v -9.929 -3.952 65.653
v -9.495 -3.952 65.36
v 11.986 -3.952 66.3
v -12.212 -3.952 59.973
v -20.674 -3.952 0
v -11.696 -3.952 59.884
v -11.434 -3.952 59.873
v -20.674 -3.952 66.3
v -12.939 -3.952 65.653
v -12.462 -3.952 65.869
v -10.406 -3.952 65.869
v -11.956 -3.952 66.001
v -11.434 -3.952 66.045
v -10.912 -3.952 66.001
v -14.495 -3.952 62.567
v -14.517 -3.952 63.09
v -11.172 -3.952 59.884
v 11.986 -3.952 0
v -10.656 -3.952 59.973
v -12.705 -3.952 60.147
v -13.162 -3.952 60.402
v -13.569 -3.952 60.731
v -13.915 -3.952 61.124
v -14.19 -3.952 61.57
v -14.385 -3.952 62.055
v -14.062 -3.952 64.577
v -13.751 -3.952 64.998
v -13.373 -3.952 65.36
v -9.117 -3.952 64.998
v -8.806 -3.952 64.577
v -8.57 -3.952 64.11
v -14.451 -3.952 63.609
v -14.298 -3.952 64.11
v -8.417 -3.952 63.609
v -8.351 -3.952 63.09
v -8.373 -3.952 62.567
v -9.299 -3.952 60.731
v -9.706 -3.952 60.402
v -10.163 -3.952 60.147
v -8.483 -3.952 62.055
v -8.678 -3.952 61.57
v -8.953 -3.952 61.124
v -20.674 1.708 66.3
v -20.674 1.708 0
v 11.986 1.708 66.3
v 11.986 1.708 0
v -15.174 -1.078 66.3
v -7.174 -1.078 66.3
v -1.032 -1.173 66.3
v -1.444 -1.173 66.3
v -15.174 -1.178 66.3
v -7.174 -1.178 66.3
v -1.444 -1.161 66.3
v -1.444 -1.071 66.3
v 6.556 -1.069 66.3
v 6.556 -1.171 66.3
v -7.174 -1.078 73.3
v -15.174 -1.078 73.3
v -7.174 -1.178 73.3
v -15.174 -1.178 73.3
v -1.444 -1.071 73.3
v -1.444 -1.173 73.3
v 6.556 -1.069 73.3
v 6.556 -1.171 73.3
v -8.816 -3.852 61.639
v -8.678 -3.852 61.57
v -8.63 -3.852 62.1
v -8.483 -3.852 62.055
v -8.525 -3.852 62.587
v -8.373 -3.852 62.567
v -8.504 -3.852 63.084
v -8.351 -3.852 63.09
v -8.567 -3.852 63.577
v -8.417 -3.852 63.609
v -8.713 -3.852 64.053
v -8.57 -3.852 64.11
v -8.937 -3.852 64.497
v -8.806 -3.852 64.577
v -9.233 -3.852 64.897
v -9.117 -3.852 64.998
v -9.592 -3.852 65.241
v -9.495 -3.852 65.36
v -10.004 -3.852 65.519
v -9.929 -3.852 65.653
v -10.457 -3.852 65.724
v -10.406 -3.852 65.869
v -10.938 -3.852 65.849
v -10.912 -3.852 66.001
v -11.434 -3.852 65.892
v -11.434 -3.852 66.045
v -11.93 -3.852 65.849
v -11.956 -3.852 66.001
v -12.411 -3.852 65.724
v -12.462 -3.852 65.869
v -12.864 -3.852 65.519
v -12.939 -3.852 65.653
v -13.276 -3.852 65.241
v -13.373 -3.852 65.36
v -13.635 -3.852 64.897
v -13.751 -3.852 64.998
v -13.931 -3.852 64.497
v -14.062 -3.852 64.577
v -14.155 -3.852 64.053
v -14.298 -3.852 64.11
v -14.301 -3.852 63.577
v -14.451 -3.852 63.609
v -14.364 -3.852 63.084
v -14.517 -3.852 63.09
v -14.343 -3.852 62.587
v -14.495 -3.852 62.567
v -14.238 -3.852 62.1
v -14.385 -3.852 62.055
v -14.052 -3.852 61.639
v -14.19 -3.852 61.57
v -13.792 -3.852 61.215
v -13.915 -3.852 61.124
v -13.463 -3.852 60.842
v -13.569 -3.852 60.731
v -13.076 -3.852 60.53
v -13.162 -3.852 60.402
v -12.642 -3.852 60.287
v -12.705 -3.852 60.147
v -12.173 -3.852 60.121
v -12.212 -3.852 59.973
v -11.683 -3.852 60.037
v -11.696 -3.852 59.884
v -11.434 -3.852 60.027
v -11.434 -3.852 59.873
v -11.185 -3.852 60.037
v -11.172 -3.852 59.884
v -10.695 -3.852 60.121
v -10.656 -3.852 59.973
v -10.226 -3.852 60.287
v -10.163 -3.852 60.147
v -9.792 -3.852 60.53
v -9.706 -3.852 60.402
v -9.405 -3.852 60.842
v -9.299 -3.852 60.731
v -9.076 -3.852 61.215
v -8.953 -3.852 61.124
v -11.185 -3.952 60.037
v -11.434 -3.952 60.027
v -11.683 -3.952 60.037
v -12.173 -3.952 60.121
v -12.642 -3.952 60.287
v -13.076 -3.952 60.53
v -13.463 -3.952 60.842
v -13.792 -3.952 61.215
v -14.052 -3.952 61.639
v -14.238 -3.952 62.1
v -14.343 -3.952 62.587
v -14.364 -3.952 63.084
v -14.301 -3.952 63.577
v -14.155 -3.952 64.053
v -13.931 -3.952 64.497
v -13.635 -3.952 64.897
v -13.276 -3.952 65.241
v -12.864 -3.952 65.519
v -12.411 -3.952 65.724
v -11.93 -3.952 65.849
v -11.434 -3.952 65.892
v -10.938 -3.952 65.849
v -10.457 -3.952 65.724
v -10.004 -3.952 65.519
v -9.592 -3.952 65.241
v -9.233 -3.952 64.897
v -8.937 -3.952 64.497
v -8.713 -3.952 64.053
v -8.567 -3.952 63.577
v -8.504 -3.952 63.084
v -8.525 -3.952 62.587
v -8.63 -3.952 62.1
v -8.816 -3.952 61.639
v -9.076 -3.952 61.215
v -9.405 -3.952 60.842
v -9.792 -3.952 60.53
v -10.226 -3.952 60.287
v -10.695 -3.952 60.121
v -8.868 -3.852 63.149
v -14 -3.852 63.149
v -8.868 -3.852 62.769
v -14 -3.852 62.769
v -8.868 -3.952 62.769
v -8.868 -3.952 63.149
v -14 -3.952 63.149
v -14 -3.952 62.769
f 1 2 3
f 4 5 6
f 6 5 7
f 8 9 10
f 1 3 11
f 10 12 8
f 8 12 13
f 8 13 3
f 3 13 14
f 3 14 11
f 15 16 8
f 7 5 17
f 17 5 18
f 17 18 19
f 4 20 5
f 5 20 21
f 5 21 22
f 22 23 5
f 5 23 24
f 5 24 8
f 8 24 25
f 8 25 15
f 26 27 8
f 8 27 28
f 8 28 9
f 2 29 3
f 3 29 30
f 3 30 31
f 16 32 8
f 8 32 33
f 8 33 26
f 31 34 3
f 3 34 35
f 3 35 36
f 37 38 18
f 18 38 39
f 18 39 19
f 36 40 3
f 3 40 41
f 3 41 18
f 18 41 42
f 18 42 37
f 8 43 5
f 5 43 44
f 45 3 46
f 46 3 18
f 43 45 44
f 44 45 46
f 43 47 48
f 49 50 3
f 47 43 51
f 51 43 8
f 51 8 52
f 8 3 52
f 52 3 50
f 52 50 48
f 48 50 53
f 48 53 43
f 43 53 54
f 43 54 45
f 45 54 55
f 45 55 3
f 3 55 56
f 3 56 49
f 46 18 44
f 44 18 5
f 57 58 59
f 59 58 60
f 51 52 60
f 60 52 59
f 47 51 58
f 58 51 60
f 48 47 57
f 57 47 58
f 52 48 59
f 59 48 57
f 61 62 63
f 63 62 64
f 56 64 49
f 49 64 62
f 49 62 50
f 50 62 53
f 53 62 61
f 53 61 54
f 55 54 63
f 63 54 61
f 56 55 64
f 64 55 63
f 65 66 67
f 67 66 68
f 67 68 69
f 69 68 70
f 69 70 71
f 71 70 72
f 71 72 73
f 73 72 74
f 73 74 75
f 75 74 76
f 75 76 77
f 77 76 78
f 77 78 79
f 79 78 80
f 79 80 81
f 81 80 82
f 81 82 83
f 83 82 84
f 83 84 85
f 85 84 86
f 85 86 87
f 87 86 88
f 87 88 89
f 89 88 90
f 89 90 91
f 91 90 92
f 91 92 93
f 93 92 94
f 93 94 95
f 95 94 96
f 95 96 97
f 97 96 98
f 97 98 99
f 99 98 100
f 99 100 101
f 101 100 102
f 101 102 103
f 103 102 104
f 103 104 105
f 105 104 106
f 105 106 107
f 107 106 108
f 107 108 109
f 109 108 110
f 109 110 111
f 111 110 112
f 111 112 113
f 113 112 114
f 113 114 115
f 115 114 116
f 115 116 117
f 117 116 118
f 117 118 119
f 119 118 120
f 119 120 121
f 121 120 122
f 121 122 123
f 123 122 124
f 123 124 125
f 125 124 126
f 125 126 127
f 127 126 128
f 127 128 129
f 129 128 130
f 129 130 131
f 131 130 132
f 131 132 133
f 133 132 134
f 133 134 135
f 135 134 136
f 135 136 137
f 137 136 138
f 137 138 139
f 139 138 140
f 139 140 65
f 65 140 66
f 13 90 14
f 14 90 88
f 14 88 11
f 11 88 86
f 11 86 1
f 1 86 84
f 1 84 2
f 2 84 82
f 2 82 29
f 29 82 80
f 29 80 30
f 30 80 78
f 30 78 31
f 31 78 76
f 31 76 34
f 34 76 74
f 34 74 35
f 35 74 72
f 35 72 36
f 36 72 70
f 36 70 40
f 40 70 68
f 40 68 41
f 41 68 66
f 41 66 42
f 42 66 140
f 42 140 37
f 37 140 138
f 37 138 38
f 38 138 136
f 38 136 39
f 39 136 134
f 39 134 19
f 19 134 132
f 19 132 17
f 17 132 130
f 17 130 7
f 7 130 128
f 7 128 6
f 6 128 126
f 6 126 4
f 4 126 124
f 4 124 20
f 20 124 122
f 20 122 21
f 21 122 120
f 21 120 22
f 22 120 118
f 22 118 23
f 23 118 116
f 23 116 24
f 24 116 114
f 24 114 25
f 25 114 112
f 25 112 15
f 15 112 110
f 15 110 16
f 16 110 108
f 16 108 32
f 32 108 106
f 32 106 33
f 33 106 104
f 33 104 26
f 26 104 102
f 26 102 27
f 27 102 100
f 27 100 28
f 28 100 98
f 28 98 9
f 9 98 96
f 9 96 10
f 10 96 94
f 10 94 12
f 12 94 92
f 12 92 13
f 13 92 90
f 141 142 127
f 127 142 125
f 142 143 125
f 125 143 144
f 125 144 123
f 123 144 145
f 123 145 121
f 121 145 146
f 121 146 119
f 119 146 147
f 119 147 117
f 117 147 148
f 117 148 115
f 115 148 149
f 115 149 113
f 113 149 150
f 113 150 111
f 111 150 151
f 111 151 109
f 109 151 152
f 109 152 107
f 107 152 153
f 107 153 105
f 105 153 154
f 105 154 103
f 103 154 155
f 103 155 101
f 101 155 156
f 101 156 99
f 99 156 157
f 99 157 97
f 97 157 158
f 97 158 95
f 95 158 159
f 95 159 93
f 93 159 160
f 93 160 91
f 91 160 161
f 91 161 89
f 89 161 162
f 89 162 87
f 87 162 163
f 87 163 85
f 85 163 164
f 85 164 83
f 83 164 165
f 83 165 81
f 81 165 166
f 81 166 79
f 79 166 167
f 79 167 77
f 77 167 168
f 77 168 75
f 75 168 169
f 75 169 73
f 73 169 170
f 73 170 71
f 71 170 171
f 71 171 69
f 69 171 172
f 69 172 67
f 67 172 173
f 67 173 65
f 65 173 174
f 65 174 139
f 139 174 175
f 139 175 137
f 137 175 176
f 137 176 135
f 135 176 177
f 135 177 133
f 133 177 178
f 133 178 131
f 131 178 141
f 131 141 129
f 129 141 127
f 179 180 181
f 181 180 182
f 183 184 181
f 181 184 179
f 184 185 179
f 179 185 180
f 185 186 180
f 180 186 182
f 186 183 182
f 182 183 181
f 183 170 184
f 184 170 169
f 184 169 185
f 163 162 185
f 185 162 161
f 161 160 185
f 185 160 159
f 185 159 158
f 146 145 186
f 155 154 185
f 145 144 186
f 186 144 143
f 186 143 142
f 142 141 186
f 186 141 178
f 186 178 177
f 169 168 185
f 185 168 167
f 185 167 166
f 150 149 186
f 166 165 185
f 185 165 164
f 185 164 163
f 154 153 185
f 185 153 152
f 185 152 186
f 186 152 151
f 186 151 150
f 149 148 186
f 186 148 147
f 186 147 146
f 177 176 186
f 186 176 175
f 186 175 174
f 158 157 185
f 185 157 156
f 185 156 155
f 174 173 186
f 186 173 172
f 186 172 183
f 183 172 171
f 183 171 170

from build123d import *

# Parameters (mm, degrees)
SKETCH1_W           = 32.66
SKETCH1_H           = 5.66
BOSS_EXTRUDE1_DEPTH = 66.3
BOSS_EXTRUDE3_DEPTH = 7
F_3DSKETCH2_R       = 3.086177745
F_3DSKETCH2_R_2     = 2.932442158
CUT_EXTRUDE1_DEPTH  = 0.1


with BuildPart() as part:
    # Sketch1 → Boss-Extrude1 (new body)
    with BuildSketch(Plane.XY):
        with Locations((-4.344198718, -1.121650641)):
            Rectangle(SKETCH1_W, SKETCH1_H)
    extrude(amount=BOSS_EXTRUDE1_DEPTH)


with BuildPart() as boss_extrude3_tool:
    # 3DSketch1 → Boss-Extrude3 (new, along a direction that is not the sketch's normal)
    with BuildSketch(Plane(origin=(-15.174198718, -1.178373292, 66.3), x_dir=(0.9999872662359682, 0.005046520163970641, -3.866762069669127e-07), z_dir=(-4.534508681961708e-07, 1.3230678756319878e-05, -0.9999999999123718))):
        Polygon((0, 0), (7.99989813, 0.040372161), (8.000402782, -0.059626565), (0.000504652, -0.099998727), align=None)
        Polygon((13.729853573, 0.063545778), (21.729762739, 0.101958696), (21.730277042, 0), (13.730369262, -0.038412192), align=None)
    extrude(amount=-BOSS_EXTRUDE3_DEPTH, dir=(0, 0, -1))


with BuildPart() as part_1:
    add(part.part)


with BuildPart() as part_2:
    # Boss-Extrude3: joined with boss_extrude3_tool
    add(part_1.part.fuse(boss_extrude3_tool.part, tol=0.00001))

    # 3DSketch2 → Cut-Extrude1 (cut)
    # profile 1 of 2: a face of its own
    with BuildSketch(Plane(origin=(-14.000400956, -3.951650641, 62.768913979), x_dir=(0.9972629704452686, 0, 0.07393624130749163), z_dir=(0, 1, 0))):
        with Locations((2.573415081, 0)):
            Circle(F_3DSKETCH2_R)
        with Locations((2.573415081, 0)):
            Circle(F_3DSKETCH2_R_2, mode=Mode.SUBTRACT)
    # profile 2 of 2: a face of its own
    with BuildSketch(Plane(origin=(-14.000400956, -3.951650641, 62.768913979), x_dir=(0.9972629704452686, 0, 0.07393624130749163), z_dir=(0, 1, 0))):
        Polygon((0, 0), (5.118694666, 0.379495735), (5.146830162, 0), (0.028135496, -0.379495735), align=None)
    extrude(amount=CUT_EXTRUDE1_DEPTH, mode=Mode.SUBTRACT)


solid = part_2.part
